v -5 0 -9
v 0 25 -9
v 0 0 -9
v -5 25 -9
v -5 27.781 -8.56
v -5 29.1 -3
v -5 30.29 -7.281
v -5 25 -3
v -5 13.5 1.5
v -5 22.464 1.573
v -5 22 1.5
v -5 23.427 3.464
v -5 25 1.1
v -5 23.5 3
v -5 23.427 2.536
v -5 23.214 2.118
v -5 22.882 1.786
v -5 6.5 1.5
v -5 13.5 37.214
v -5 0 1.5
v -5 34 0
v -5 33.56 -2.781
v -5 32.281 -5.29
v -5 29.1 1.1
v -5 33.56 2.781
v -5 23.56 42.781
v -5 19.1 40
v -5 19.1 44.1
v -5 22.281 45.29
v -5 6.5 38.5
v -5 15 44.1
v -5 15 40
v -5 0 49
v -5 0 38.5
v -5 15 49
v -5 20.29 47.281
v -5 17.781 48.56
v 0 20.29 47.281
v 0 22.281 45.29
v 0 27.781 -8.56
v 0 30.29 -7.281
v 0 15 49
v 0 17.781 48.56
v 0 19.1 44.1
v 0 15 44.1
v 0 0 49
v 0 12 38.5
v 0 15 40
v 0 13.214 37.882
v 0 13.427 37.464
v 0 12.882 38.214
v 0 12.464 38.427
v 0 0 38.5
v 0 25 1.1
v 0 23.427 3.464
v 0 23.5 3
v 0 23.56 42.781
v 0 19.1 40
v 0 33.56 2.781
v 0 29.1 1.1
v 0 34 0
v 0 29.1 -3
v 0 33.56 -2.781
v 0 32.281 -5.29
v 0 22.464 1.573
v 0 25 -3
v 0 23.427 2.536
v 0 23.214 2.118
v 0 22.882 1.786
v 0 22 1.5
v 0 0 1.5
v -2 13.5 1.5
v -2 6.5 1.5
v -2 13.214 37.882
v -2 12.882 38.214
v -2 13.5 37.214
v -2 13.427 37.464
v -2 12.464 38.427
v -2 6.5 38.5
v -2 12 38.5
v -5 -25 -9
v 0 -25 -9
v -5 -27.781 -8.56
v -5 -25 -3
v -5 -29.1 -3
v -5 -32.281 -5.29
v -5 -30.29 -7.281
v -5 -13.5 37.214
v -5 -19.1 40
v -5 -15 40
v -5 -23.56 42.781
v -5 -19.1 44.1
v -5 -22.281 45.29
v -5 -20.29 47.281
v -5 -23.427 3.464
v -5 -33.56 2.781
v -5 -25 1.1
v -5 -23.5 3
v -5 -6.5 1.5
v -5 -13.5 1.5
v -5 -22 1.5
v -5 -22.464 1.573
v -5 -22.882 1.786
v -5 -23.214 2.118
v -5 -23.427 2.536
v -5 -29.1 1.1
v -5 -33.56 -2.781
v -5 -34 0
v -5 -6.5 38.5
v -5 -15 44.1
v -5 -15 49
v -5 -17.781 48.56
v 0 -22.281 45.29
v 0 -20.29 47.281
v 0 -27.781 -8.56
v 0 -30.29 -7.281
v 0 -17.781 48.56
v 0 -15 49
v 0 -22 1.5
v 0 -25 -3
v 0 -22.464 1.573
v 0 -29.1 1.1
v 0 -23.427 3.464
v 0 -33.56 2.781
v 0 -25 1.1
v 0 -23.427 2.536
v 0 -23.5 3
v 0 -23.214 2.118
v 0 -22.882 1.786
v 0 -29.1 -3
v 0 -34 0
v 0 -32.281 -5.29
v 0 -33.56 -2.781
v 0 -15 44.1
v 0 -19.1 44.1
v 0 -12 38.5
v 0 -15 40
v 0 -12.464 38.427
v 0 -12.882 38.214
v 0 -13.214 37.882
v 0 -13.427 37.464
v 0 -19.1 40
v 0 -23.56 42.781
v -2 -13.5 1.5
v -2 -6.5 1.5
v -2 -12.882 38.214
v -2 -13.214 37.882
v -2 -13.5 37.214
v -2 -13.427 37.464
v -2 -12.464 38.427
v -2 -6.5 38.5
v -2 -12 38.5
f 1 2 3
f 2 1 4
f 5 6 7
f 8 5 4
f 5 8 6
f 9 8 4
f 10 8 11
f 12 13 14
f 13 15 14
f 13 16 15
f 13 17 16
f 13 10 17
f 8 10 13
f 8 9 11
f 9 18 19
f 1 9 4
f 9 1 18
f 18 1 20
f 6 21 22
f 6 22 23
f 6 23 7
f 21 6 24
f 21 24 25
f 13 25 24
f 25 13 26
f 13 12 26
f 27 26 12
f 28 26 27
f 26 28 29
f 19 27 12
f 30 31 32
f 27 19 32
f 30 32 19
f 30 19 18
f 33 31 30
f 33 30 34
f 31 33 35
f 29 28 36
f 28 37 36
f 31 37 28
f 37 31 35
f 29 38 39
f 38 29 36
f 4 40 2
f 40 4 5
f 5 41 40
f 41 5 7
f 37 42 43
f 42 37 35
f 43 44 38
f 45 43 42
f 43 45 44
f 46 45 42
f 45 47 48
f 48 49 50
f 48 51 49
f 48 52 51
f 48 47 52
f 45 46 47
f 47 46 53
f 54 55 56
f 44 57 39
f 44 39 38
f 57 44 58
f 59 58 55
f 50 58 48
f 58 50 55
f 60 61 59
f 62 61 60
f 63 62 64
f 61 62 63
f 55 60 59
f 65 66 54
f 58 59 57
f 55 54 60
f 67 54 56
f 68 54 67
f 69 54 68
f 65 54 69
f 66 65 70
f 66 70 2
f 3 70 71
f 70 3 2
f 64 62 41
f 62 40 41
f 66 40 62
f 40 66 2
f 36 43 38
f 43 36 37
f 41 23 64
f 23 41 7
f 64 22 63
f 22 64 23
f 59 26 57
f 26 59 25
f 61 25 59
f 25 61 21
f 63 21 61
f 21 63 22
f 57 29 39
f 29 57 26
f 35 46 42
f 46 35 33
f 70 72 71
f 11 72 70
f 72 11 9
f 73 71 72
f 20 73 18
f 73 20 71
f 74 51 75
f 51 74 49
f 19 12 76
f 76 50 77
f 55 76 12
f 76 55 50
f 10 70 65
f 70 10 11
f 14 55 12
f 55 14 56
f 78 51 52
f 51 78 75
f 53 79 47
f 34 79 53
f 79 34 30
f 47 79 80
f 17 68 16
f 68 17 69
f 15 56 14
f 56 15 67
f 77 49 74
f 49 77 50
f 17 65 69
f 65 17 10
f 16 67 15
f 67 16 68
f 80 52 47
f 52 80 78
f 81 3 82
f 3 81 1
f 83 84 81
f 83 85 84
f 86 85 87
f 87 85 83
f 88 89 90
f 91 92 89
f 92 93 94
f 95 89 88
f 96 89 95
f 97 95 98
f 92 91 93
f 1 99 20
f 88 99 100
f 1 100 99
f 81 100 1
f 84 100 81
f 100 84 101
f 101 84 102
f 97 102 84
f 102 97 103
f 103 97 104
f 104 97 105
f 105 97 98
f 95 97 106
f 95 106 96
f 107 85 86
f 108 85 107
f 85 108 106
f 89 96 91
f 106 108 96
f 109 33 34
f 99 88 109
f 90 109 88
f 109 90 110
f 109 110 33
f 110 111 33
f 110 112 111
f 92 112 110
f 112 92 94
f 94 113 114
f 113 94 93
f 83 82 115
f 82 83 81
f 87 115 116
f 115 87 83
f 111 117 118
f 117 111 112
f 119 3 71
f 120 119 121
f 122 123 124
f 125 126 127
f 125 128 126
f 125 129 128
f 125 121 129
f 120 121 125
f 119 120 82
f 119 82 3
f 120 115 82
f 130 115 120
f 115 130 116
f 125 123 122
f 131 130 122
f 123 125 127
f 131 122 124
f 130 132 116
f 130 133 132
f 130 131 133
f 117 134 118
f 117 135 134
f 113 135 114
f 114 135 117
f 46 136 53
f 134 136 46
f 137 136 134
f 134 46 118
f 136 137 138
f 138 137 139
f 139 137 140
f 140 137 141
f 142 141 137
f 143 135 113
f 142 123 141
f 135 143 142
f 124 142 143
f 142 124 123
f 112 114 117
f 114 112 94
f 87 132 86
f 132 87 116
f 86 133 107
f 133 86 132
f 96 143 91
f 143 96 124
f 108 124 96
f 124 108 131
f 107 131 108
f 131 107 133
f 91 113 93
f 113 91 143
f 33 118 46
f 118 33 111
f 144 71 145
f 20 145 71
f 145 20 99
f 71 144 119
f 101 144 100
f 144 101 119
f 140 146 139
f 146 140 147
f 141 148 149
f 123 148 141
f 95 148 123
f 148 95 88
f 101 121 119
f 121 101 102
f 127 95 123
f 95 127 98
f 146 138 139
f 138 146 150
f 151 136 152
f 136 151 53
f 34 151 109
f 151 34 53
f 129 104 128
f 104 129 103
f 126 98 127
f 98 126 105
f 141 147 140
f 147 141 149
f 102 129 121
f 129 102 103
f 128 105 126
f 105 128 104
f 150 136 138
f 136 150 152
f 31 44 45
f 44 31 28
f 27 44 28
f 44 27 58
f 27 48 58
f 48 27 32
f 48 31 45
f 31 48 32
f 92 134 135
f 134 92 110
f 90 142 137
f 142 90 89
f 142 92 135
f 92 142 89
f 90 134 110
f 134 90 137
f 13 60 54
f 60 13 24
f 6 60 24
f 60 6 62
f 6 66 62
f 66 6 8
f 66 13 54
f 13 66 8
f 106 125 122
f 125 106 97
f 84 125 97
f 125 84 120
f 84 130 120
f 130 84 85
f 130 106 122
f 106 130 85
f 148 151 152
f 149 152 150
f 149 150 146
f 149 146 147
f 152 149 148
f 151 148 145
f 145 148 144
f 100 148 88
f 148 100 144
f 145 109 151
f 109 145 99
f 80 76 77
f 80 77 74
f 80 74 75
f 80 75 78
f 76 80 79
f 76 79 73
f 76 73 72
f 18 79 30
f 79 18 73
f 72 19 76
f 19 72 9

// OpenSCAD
t = 5;

rx = 100;
rdy = 4.1;
roy = 30;
royl = 50;

p0 = [0,0,18];
p1 = [0,25,18];
p2 = [40,15,18];
p3 = [40,0,18];

k = 12;


module rails(oz=2) {
    
  translate([-rx/2,roy/2,oz]) cube([rx,rdy,rdy]);
  mirror([0,1,0]){
    translate([-rx/2,roy/2,oz]) cube([rx,rdy,rdy]);
  }
    
}

module railsLow(oz=2) {
    
  translate([-rx/2,royl/2,oz]) cube([rx,rdy,rdy]);
  mirror([0,1,0]){
    translate([-rx/2,royl/2,oz]) cube([rx,rdy,rdy]);
  }
    
}


module span() {
difference(){
  hull(){
    translate([p0[0],p0[1],0])cylinder(r=p0[2]/2, h=t, $fn=20);
    translate([p1[0],p1[1],0])cylinder(r=p1[2]/2, h=t, $fn=20);
    translate([p2[0],p2[1],0])cylinder(r=p2[2]/2, h=t, $fn=20);
    translate([p3[0],p3[1],0])cylinder(r=p3[2]/2, h=t, $fn=20);
      
  }
  
  hull(){
    translate([p0[0]+3,p0[1]-3,-1])cylinder(r=p0[2]/k, h=2*t, $fn=20);
    translate([p1[0]+3,p1[1]-3,-1])cylinder(r=p1[2]/k, h=2*t, $fn=20);
    translate([p2[0]-3,p2[1]-3,-1])cylinder(r=p2[2]/k, h=2*t, $fn=20);
    translate([p3[0]-3,p3[1]-3,-1])cylinder(r=p3[2]/k, h=2*t, $fn=20);
  }

  translate([-120/2,-40,-1])cube([120,40,10]);
}
}


difference() {
rotate([0,-90,0])
union(){
  span();
  mirror([0,1,0])span();
};

translate([0,0,38])rails();
translate([0,0,-5])railsLow();

}

translate([-5,-10-7/2,-5])cube([3,7,50]);
translate([-5,+10-7/2,-5])cube([3,7,50]);
